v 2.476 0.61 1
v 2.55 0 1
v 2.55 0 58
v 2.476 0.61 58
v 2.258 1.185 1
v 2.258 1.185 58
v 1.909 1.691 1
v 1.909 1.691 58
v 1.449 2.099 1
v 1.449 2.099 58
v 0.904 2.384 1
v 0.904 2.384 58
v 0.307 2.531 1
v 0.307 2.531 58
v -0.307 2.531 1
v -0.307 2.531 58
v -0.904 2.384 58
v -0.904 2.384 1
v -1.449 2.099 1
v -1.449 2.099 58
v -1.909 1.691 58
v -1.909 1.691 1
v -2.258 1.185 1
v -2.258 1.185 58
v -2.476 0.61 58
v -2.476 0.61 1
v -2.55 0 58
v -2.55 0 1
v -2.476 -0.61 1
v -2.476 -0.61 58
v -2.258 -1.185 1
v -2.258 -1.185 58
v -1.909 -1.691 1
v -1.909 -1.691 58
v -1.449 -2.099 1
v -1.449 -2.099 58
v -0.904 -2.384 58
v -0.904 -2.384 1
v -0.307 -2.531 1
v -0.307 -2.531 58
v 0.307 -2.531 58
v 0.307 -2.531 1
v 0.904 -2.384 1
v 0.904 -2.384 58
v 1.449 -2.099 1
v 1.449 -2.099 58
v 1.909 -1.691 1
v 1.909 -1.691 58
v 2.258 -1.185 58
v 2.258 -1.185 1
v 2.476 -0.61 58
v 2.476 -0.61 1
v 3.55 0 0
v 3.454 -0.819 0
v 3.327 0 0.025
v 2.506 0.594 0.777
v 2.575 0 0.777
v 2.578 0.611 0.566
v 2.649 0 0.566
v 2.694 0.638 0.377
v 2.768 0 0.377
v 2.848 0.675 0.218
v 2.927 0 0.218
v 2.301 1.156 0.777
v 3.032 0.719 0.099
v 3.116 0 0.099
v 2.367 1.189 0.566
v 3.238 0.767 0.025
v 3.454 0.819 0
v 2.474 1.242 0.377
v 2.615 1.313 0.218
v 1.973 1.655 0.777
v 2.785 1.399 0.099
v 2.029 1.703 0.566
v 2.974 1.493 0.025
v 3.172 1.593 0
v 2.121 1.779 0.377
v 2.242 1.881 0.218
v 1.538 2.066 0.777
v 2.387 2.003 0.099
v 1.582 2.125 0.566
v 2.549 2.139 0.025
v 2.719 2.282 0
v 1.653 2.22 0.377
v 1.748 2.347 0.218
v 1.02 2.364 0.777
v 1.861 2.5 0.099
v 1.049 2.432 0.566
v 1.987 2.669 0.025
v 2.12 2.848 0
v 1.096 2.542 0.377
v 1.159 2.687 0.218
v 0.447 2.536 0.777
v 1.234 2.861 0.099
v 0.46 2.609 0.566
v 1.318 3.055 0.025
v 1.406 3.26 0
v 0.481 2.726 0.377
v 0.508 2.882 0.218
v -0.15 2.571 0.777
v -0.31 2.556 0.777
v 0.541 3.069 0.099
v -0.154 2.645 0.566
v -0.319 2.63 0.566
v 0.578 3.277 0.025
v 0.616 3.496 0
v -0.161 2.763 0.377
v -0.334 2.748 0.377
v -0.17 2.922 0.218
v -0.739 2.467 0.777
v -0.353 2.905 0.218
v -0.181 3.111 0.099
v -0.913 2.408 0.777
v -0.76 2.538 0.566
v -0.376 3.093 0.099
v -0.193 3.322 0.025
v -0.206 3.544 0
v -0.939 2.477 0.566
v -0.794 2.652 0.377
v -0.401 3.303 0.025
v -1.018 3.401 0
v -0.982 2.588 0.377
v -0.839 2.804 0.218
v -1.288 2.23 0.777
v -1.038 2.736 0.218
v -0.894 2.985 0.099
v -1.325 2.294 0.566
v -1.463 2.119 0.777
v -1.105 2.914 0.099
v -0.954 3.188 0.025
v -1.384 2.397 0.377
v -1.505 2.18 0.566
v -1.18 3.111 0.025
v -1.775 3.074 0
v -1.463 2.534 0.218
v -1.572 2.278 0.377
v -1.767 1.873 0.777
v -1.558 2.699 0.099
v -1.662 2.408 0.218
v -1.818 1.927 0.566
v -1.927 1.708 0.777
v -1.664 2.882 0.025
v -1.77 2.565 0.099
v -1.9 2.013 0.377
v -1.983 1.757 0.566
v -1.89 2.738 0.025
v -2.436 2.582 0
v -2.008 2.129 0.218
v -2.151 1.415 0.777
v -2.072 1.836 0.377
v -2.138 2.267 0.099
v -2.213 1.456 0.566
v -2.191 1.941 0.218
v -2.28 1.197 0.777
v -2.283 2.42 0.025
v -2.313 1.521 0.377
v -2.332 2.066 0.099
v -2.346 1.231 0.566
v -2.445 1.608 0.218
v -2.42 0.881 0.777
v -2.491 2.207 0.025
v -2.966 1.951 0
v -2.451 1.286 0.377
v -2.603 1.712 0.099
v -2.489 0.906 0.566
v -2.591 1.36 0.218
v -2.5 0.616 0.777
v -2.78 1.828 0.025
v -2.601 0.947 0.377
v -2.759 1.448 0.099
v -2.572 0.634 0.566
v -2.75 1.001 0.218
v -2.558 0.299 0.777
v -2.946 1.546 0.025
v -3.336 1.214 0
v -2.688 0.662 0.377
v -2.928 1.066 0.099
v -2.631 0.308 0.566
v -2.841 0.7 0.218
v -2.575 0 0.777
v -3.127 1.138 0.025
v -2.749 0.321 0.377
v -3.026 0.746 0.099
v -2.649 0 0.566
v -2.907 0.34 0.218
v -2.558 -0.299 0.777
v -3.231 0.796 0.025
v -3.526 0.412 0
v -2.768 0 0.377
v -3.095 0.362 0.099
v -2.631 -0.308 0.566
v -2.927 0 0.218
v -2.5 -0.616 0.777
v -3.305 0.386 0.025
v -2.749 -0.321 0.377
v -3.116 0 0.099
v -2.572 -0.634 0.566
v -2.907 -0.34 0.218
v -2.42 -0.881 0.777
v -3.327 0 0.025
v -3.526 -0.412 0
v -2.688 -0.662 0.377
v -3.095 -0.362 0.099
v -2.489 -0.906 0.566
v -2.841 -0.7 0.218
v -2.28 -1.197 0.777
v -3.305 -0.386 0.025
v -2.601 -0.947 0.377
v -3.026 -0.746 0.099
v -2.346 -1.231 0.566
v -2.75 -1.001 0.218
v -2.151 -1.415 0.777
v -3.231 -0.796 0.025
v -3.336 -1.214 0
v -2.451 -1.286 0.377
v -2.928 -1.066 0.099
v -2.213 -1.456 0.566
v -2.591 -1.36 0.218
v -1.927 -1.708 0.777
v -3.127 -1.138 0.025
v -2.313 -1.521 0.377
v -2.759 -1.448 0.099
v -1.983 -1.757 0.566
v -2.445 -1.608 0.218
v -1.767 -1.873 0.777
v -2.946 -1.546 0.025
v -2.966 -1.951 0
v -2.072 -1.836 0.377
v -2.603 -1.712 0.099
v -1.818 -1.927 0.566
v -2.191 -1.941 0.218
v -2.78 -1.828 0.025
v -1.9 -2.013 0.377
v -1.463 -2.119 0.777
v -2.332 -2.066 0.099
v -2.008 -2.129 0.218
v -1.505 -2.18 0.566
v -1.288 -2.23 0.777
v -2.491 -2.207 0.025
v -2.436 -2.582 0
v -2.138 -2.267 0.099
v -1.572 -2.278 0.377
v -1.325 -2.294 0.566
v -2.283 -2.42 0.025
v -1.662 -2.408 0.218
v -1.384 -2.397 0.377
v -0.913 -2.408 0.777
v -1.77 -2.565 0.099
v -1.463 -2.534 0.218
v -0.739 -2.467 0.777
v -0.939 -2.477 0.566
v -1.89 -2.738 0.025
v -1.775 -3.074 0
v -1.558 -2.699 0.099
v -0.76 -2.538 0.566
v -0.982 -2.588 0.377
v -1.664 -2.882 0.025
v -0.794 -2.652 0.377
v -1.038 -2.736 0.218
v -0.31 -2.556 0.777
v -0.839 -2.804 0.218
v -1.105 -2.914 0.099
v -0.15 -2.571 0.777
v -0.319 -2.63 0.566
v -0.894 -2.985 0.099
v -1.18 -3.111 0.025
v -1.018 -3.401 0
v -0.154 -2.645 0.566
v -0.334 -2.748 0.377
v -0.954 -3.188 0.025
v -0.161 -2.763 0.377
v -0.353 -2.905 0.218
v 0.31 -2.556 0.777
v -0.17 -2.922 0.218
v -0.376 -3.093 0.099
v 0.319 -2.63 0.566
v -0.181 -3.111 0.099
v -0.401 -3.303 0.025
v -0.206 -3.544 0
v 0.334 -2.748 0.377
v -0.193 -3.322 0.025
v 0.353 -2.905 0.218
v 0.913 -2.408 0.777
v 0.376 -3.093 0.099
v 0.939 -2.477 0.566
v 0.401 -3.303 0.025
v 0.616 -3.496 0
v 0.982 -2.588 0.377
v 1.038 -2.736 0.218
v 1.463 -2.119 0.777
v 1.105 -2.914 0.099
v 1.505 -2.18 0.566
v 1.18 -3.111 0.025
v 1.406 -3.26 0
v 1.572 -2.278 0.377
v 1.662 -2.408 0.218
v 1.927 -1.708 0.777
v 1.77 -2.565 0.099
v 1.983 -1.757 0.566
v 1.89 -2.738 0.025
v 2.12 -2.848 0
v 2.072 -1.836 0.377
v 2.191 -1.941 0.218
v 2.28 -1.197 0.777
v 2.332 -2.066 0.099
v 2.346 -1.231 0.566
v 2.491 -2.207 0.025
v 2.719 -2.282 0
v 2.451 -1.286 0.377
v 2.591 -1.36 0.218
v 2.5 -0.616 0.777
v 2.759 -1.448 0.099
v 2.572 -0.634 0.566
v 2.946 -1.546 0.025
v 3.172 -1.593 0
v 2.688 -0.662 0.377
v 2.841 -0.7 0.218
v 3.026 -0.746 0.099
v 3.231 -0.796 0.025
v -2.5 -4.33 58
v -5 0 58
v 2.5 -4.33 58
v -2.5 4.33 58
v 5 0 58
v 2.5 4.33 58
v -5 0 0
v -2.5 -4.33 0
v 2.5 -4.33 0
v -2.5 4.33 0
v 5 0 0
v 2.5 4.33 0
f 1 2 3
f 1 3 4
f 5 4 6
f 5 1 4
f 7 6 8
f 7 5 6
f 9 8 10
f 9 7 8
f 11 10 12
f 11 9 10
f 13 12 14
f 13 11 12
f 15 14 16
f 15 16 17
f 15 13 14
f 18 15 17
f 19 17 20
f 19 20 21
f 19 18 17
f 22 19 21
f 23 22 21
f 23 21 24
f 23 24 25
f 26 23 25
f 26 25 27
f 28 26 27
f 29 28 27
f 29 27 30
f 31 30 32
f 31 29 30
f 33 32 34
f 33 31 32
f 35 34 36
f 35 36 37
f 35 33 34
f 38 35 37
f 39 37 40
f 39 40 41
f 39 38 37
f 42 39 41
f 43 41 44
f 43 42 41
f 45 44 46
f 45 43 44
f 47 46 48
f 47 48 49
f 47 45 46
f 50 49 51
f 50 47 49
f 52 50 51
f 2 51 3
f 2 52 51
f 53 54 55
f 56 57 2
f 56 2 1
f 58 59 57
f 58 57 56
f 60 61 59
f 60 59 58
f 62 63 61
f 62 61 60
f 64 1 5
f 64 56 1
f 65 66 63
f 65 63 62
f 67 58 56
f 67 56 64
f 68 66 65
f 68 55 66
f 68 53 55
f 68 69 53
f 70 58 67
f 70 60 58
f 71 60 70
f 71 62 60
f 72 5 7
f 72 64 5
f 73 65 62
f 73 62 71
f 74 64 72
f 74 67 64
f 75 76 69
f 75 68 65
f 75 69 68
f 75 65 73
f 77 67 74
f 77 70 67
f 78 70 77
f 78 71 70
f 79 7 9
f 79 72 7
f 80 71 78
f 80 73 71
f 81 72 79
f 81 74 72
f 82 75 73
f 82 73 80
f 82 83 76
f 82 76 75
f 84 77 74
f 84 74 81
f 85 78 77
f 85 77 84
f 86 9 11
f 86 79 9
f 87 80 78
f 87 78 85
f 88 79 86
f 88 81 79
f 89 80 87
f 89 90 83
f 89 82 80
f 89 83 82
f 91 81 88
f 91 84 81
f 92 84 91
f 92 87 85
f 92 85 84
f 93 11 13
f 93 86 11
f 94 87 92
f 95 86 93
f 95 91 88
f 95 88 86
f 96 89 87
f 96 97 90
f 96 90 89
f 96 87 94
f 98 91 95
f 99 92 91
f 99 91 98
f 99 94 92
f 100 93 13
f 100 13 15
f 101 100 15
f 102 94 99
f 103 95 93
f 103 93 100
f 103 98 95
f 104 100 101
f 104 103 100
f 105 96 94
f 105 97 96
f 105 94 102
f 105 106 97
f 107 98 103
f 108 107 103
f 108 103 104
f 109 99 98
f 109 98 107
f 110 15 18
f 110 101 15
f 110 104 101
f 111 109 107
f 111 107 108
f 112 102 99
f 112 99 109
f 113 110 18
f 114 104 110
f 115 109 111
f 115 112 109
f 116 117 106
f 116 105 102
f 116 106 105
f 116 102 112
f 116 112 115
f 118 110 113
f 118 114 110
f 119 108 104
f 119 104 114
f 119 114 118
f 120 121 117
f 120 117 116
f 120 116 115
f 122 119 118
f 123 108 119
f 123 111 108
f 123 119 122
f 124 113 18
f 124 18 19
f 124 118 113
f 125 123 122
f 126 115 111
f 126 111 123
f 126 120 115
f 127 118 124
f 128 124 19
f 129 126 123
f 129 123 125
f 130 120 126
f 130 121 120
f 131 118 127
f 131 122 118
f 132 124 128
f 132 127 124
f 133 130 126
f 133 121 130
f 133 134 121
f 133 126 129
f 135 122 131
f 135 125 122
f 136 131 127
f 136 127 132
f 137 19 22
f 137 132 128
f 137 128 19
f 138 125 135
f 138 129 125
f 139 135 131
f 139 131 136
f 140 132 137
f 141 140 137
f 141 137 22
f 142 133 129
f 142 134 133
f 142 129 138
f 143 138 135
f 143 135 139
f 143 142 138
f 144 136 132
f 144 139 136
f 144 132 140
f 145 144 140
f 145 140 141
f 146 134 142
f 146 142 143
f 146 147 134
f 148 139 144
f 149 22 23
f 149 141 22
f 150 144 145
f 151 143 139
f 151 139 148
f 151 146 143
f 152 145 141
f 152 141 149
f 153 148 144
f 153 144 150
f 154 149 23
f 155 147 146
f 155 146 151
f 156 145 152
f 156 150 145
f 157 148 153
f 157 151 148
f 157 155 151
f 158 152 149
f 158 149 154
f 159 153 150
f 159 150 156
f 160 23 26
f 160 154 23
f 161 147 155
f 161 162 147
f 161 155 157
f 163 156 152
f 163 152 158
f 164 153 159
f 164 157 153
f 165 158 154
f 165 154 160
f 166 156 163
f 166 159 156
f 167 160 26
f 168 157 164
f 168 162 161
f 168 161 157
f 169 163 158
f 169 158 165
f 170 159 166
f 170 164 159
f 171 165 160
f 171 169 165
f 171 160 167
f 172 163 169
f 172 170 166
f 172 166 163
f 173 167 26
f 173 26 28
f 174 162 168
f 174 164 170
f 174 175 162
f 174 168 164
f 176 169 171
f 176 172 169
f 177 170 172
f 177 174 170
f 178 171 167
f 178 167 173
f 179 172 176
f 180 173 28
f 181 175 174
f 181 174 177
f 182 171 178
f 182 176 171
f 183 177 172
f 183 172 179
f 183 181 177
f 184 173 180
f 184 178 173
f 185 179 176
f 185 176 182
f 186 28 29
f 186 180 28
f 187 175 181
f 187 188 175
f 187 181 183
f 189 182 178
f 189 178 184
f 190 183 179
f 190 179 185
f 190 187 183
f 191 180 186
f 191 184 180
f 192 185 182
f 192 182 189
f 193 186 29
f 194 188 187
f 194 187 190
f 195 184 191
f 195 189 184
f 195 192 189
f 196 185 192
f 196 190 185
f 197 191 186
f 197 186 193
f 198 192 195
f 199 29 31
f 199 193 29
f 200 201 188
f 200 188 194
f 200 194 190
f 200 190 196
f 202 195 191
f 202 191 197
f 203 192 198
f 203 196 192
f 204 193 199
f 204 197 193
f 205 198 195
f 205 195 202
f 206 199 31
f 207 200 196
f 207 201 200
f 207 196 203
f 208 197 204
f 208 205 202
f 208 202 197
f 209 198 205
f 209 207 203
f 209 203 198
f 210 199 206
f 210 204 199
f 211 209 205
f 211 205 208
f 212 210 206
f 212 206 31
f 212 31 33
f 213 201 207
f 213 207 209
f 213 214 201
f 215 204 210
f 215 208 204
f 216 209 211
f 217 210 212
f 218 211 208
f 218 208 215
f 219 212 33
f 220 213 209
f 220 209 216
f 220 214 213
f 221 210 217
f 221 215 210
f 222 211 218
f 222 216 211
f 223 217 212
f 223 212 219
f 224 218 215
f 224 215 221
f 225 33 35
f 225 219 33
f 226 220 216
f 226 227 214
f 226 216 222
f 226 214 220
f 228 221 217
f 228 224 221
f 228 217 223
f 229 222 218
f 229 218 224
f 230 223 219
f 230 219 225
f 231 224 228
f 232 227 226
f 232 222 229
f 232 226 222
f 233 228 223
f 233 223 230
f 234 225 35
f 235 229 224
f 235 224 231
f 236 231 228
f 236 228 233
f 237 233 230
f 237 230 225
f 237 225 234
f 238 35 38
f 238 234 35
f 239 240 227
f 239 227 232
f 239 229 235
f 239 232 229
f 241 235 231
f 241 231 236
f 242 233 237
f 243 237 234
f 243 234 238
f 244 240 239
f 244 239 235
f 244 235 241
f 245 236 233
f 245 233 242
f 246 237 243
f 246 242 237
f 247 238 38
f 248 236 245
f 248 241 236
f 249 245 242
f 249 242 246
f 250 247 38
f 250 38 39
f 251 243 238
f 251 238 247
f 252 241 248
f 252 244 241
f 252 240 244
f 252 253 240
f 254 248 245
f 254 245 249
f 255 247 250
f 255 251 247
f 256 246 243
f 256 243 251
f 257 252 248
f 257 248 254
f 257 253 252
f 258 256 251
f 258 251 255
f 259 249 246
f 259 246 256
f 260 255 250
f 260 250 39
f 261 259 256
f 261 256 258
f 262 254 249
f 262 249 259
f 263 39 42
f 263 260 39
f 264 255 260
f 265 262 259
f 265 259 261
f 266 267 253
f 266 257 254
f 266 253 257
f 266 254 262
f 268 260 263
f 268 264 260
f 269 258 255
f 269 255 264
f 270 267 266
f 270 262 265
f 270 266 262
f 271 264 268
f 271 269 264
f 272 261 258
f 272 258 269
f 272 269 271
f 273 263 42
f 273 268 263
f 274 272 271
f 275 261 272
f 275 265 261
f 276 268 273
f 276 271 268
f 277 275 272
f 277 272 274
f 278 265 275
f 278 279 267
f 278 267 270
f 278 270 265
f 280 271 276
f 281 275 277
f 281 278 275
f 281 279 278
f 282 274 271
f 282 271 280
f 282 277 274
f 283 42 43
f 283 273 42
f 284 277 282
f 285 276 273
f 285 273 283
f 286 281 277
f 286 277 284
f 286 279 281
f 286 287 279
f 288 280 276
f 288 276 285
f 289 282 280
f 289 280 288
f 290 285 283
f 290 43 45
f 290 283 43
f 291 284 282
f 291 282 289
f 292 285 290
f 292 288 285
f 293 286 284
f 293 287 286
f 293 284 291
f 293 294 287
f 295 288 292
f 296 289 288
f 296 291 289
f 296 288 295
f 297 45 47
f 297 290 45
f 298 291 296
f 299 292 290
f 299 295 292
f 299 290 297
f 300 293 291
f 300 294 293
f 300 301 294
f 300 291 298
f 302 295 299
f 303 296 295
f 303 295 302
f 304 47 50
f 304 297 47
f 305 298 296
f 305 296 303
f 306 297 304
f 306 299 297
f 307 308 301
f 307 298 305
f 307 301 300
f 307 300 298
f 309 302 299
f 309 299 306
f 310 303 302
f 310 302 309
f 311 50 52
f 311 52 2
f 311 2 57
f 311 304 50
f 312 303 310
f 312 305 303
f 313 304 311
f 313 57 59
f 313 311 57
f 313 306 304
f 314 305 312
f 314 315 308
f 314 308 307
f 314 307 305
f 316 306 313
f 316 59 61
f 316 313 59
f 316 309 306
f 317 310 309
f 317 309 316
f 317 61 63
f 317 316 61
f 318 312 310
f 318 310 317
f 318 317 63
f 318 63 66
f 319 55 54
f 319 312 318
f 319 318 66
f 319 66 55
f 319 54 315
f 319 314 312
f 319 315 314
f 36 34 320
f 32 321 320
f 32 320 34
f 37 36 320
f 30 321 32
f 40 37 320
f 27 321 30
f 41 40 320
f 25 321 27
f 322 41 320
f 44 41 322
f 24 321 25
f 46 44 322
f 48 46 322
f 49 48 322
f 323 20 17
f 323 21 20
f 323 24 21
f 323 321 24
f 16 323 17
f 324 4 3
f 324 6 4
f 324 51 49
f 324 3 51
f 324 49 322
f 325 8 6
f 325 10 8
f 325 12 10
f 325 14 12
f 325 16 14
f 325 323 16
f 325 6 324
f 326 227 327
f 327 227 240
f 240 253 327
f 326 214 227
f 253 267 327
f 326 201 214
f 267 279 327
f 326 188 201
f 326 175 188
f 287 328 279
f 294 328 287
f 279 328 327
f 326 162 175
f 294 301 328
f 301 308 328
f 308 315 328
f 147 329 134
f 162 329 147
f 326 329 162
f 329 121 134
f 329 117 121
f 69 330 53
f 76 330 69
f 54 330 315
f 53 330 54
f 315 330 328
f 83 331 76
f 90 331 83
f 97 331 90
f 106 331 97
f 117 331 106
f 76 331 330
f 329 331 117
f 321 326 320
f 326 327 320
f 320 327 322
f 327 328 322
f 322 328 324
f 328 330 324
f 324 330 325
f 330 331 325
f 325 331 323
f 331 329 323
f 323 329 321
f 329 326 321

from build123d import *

# Parameters (mm, degrees)
SKETCH_R  = 2.55
PAD_DEPTH = 58
FILLET_R  = 1


with BuildPart() as part:
    # Sketch → Pad (new body)
    with BuildSketch(Plane.XY):
        Polygon((-5, 0), (-2.5, -4.330127), (2.5, -4.330127), (5, 0), (2.5, 4.330127), (-2.5, 4.330127), align=None)
        Circle(SKETCH_R, mode=Mode.SUBTRACT)
    extrude(amount=PAD_DEPTH)

    # Fillet
    fillet_edges = [part.edges().sort_by_distance(p)[0] for p in [
        (-2.55, 0, 0),
    ]]
    fillet(fillet_edges, radius=FILLET_R)


solid = part.part
